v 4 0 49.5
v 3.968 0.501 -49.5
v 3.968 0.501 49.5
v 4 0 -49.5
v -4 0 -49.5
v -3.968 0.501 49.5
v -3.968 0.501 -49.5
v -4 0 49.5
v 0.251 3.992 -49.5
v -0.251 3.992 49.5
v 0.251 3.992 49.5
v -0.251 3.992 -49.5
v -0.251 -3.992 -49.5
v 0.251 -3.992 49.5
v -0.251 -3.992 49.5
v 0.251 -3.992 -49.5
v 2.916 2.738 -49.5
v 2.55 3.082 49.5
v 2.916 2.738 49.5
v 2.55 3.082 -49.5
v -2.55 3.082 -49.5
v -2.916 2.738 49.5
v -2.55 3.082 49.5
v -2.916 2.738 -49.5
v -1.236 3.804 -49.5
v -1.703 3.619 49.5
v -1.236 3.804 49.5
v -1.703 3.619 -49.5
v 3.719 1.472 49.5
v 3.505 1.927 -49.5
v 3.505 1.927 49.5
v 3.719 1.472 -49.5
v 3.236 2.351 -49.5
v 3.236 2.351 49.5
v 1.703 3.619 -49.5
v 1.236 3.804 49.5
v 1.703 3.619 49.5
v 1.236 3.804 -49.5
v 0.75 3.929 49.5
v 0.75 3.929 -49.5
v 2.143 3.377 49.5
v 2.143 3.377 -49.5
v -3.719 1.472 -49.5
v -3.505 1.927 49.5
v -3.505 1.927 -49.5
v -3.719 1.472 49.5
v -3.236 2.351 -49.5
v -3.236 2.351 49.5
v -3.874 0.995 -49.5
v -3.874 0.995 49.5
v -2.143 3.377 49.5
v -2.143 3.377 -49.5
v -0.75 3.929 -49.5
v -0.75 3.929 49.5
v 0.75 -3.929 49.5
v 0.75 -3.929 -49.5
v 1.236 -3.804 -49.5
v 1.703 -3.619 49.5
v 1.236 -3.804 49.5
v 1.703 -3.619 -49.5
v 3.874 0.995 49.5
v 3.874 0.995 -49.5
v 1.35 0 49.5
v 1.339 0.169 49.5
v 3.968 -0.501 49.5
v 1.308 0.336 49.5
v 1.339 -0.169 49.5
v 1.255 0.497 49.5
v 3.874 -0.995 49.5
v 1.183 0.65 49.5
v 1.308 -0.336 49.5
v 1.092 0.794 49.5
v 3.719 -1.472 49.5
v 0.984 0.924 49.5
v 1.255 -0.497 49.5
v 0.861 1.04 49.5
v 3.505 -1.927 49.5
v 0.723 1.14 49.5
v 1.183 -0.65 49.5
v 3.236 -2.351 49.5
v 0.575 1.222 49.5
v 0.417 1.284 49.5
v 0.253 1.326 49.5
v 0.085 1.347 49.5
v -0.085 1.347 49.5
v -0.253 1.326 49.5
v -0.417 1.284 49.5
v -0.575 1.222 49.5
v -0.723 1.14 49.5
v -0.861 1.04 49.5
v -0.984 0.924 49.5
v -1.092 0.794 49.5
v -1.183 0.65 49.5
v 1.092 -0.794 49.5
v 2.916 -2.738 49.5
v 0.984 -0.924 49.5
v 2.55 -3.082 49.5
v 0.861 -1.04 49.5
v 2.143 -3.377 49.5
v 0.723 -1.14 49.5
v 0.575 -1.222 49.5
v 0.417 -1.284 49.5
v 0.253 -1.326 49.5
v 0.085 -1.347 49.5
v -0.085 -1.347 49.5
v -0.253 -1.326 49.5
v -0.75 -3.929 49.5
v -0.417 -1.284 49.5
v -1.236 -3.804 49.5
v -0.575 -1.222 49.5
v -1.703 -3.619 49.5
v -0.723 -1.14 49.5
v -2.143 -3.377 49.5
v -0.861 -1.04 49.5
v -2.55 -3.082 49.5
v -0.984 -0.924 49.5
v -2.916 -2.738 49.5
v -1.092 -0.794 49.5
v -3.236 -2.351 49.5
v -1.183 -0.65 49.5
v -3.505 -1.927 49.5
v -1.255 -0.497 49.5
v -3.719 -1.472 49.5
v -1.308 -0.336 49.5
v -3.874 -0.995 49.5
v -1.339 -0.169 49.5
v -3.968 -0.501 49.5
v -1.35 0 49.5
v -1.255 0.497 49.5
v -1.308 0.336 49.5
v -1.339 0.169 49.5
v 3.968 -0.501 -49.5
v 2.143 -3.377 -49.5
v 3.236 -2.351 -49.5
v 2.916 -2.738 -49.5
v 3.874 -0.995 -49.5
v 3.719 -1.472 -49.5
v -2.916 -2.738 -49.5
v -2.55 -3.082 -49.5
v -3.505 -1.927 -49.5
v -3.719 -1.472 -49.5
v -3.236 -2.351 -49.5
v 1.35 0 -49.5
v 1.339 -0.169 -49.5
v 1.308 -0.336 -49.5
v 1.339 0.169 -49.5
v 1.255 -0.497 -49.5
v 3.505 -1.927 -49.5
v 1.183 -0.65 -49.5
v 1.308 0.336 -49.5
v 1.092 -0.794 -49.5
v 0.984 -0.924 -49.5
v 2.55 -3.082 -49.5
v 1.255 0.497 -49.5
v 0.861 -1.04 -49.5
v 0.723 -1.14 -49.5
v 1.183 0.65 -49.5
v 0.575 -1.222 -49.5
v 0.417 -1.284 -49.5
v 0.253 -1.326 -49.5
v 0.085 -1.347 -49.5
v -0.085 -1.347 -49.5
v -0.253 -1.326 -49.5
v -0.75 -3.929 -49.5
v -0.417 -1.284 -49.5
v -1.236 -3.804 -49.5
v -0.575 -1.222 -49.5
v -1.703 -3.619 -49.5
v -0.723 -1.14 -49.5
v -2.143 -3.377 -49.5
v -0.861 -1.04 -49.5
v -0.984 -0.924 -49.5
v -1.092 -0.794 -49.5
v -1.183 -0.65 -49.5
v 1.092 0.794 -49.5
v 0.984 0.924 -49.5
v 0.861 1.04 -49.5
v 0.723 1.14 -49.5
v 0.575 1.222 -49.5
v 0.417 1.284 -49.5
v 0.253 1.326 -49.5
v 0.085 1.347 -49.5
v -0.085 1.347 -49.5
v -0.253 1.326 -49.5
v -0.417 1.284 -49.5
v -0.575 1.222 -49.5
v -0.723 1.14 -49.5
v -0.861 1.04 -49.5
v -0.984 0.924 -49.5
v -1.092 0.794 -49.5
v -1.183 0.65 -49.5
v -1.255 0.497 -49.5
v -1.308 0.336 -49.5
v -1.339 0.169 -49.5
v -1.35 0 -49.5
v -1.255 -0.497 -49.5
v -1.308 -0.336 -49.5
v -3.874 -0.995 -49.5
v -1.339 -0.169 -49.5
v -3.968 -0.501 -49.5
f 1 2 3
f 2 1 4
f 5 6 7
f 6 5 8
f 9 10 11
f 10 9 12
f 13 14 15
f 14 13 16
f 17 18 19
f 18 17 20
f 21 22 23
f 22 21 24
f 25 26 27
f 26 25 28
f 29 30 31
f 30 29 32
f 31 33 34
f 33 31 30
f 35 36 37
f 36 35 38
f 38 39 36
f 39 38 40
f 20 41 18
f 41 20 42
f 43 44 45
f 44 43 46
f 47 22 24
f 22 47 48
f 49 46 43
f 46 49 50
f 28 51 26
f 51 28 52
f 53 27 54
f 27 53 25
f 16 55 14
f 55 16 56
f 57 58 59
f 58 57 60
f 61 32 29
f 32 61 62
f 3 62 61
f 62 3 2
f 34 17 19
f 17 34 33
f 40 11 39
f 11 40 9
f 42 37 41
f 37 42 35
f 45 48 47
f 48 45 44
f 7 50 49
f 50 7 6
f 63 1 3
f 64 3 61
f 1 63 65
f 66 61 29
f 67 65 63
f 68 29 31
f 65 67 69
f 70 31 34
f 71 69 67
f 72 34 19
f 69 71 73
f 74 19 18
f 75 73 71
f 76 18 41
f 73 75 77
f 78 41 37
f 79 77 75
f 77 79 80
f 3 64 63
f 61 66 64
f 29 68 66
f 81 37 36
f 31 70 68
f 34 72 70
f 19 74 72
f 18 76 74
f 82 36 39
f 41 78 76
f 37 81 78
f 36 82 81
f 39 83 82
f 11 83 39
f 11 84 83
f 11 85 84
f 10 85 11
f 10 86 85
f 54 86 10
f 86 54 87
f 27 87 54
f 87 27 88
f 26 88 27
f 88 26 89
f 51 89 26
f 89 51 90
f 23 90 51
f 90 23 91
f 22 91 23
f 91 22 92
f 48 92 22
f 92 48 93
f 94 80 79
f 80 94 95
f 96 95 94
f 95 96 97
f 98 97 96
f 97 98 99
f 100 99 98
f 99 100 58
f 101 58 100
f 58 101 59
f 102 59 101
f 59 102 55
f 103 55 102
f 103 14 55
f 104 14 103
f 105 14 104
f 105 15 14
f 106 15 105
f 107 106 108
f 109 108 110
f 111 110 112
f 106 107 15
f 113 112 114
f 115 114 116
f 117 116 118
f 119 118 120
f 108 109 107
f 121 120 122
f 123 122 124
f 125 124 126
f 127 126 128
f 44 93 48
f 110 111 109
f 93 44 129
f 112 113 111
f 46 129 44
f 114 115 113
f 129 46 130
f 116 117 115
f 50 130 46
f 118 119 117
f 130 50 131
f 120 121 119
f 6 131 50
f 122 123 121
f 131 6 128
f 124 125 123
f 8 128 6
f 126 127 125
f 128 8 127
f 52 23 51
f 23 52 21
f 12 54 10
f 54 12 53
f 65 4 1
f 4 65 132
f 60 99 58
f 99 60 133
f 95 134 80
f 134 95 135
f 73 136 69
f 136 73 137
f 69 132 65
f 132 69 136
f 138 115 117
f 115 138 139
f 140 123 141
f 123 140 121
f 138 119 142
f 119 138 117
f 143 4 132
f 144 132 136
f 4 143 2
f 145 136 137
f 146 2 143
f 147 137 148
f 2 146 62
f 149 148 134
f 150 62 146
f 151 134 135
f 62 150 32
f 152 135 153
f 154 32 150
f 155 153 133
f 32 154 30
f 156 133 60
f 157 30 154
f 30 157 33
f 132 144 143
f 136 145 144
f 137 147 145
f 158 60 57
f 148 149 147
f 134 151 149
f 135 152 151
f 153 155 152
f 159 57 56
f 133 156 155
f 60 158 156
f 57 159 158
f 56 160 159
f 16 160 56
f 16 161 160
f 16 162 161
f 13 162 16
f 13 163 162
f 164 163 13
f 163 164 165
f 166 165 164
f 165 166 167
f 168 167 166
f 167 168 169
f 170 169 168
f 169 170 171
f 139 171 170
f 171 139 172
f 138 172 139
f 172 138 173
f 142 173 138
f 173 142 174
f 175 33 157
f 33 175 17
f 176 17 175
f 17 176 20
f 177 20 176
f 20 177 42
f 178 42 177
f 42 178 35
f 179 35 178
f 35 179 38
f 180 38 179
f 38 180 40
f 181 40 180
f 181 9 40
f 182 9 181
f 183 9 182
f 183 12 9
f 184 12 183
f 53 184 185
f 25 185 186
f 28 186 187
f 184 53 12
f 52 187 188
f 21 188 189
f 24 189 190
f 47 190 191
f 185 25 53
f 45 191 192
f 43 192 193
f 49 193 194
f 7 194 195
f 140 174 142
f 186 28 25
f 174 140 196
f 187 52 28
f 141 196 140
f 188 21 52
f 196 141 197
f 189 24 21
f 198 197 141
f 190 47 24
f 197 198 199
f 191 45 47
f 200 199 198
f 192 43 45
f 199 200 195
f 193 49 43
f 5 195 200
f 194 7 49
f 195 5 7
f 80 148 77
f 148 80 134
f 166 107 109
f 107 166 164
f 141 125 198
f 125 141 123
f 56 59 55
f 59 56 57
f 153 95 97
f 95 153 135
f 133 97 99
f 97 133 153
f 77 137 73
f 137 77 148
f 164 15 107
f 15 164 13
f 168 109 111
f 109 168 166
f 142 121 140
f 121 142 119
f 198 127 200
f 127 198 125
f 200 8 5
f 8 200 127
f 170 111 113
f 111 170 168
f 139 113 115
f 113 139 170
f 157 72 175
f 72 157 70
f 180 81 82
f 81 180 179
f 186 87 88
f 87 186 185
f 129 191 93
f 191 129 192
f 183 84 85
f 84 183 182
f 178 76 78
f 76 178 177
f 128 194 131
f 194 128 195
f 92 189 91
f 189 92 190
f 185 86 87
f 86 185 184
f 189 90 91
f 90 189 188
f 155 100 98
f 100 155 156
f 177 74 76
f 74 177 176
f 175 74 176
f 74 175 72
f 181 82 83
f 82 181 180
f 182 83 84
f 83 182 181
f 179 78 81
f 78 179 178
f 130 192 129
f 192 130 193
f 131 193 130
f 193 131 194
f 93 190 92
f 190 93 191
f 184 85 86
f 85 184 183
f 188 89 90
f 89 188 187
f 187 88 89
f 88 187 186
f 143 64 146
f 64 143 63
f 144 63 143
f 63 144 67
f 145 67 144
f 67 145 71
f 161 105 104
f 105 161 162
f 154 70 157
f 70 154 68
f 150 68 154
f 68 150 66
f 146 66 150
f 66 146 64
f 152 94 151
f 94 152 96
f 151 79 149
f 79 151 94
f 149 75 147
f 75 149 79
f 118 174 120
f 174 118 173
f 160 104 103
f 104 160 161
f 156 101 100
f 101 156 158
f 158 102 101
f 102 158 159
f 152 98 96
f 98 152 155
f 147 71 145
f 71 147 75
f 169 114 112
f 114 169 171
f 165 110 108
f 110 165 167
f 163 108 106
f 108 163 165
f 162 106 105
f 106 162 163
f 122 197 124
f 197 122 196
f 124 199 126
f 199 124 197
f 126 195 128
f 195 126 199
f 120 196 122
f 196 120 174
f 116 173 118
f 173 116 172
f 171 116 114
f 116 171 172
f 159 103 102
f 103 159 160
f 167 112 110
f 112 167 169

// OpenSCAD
$fn = 50;


difference() {
	union() {
		translate(v = [0, 0, -49.5000000000]) {
			cylinder(h = 99, r = 4.0000000000);
		}
	}
	union() {
		translate(v = [0, 0, -100.0000000000]) {
			cylinder(h = 200, r = 1.3500000000);
		}
	}
}
